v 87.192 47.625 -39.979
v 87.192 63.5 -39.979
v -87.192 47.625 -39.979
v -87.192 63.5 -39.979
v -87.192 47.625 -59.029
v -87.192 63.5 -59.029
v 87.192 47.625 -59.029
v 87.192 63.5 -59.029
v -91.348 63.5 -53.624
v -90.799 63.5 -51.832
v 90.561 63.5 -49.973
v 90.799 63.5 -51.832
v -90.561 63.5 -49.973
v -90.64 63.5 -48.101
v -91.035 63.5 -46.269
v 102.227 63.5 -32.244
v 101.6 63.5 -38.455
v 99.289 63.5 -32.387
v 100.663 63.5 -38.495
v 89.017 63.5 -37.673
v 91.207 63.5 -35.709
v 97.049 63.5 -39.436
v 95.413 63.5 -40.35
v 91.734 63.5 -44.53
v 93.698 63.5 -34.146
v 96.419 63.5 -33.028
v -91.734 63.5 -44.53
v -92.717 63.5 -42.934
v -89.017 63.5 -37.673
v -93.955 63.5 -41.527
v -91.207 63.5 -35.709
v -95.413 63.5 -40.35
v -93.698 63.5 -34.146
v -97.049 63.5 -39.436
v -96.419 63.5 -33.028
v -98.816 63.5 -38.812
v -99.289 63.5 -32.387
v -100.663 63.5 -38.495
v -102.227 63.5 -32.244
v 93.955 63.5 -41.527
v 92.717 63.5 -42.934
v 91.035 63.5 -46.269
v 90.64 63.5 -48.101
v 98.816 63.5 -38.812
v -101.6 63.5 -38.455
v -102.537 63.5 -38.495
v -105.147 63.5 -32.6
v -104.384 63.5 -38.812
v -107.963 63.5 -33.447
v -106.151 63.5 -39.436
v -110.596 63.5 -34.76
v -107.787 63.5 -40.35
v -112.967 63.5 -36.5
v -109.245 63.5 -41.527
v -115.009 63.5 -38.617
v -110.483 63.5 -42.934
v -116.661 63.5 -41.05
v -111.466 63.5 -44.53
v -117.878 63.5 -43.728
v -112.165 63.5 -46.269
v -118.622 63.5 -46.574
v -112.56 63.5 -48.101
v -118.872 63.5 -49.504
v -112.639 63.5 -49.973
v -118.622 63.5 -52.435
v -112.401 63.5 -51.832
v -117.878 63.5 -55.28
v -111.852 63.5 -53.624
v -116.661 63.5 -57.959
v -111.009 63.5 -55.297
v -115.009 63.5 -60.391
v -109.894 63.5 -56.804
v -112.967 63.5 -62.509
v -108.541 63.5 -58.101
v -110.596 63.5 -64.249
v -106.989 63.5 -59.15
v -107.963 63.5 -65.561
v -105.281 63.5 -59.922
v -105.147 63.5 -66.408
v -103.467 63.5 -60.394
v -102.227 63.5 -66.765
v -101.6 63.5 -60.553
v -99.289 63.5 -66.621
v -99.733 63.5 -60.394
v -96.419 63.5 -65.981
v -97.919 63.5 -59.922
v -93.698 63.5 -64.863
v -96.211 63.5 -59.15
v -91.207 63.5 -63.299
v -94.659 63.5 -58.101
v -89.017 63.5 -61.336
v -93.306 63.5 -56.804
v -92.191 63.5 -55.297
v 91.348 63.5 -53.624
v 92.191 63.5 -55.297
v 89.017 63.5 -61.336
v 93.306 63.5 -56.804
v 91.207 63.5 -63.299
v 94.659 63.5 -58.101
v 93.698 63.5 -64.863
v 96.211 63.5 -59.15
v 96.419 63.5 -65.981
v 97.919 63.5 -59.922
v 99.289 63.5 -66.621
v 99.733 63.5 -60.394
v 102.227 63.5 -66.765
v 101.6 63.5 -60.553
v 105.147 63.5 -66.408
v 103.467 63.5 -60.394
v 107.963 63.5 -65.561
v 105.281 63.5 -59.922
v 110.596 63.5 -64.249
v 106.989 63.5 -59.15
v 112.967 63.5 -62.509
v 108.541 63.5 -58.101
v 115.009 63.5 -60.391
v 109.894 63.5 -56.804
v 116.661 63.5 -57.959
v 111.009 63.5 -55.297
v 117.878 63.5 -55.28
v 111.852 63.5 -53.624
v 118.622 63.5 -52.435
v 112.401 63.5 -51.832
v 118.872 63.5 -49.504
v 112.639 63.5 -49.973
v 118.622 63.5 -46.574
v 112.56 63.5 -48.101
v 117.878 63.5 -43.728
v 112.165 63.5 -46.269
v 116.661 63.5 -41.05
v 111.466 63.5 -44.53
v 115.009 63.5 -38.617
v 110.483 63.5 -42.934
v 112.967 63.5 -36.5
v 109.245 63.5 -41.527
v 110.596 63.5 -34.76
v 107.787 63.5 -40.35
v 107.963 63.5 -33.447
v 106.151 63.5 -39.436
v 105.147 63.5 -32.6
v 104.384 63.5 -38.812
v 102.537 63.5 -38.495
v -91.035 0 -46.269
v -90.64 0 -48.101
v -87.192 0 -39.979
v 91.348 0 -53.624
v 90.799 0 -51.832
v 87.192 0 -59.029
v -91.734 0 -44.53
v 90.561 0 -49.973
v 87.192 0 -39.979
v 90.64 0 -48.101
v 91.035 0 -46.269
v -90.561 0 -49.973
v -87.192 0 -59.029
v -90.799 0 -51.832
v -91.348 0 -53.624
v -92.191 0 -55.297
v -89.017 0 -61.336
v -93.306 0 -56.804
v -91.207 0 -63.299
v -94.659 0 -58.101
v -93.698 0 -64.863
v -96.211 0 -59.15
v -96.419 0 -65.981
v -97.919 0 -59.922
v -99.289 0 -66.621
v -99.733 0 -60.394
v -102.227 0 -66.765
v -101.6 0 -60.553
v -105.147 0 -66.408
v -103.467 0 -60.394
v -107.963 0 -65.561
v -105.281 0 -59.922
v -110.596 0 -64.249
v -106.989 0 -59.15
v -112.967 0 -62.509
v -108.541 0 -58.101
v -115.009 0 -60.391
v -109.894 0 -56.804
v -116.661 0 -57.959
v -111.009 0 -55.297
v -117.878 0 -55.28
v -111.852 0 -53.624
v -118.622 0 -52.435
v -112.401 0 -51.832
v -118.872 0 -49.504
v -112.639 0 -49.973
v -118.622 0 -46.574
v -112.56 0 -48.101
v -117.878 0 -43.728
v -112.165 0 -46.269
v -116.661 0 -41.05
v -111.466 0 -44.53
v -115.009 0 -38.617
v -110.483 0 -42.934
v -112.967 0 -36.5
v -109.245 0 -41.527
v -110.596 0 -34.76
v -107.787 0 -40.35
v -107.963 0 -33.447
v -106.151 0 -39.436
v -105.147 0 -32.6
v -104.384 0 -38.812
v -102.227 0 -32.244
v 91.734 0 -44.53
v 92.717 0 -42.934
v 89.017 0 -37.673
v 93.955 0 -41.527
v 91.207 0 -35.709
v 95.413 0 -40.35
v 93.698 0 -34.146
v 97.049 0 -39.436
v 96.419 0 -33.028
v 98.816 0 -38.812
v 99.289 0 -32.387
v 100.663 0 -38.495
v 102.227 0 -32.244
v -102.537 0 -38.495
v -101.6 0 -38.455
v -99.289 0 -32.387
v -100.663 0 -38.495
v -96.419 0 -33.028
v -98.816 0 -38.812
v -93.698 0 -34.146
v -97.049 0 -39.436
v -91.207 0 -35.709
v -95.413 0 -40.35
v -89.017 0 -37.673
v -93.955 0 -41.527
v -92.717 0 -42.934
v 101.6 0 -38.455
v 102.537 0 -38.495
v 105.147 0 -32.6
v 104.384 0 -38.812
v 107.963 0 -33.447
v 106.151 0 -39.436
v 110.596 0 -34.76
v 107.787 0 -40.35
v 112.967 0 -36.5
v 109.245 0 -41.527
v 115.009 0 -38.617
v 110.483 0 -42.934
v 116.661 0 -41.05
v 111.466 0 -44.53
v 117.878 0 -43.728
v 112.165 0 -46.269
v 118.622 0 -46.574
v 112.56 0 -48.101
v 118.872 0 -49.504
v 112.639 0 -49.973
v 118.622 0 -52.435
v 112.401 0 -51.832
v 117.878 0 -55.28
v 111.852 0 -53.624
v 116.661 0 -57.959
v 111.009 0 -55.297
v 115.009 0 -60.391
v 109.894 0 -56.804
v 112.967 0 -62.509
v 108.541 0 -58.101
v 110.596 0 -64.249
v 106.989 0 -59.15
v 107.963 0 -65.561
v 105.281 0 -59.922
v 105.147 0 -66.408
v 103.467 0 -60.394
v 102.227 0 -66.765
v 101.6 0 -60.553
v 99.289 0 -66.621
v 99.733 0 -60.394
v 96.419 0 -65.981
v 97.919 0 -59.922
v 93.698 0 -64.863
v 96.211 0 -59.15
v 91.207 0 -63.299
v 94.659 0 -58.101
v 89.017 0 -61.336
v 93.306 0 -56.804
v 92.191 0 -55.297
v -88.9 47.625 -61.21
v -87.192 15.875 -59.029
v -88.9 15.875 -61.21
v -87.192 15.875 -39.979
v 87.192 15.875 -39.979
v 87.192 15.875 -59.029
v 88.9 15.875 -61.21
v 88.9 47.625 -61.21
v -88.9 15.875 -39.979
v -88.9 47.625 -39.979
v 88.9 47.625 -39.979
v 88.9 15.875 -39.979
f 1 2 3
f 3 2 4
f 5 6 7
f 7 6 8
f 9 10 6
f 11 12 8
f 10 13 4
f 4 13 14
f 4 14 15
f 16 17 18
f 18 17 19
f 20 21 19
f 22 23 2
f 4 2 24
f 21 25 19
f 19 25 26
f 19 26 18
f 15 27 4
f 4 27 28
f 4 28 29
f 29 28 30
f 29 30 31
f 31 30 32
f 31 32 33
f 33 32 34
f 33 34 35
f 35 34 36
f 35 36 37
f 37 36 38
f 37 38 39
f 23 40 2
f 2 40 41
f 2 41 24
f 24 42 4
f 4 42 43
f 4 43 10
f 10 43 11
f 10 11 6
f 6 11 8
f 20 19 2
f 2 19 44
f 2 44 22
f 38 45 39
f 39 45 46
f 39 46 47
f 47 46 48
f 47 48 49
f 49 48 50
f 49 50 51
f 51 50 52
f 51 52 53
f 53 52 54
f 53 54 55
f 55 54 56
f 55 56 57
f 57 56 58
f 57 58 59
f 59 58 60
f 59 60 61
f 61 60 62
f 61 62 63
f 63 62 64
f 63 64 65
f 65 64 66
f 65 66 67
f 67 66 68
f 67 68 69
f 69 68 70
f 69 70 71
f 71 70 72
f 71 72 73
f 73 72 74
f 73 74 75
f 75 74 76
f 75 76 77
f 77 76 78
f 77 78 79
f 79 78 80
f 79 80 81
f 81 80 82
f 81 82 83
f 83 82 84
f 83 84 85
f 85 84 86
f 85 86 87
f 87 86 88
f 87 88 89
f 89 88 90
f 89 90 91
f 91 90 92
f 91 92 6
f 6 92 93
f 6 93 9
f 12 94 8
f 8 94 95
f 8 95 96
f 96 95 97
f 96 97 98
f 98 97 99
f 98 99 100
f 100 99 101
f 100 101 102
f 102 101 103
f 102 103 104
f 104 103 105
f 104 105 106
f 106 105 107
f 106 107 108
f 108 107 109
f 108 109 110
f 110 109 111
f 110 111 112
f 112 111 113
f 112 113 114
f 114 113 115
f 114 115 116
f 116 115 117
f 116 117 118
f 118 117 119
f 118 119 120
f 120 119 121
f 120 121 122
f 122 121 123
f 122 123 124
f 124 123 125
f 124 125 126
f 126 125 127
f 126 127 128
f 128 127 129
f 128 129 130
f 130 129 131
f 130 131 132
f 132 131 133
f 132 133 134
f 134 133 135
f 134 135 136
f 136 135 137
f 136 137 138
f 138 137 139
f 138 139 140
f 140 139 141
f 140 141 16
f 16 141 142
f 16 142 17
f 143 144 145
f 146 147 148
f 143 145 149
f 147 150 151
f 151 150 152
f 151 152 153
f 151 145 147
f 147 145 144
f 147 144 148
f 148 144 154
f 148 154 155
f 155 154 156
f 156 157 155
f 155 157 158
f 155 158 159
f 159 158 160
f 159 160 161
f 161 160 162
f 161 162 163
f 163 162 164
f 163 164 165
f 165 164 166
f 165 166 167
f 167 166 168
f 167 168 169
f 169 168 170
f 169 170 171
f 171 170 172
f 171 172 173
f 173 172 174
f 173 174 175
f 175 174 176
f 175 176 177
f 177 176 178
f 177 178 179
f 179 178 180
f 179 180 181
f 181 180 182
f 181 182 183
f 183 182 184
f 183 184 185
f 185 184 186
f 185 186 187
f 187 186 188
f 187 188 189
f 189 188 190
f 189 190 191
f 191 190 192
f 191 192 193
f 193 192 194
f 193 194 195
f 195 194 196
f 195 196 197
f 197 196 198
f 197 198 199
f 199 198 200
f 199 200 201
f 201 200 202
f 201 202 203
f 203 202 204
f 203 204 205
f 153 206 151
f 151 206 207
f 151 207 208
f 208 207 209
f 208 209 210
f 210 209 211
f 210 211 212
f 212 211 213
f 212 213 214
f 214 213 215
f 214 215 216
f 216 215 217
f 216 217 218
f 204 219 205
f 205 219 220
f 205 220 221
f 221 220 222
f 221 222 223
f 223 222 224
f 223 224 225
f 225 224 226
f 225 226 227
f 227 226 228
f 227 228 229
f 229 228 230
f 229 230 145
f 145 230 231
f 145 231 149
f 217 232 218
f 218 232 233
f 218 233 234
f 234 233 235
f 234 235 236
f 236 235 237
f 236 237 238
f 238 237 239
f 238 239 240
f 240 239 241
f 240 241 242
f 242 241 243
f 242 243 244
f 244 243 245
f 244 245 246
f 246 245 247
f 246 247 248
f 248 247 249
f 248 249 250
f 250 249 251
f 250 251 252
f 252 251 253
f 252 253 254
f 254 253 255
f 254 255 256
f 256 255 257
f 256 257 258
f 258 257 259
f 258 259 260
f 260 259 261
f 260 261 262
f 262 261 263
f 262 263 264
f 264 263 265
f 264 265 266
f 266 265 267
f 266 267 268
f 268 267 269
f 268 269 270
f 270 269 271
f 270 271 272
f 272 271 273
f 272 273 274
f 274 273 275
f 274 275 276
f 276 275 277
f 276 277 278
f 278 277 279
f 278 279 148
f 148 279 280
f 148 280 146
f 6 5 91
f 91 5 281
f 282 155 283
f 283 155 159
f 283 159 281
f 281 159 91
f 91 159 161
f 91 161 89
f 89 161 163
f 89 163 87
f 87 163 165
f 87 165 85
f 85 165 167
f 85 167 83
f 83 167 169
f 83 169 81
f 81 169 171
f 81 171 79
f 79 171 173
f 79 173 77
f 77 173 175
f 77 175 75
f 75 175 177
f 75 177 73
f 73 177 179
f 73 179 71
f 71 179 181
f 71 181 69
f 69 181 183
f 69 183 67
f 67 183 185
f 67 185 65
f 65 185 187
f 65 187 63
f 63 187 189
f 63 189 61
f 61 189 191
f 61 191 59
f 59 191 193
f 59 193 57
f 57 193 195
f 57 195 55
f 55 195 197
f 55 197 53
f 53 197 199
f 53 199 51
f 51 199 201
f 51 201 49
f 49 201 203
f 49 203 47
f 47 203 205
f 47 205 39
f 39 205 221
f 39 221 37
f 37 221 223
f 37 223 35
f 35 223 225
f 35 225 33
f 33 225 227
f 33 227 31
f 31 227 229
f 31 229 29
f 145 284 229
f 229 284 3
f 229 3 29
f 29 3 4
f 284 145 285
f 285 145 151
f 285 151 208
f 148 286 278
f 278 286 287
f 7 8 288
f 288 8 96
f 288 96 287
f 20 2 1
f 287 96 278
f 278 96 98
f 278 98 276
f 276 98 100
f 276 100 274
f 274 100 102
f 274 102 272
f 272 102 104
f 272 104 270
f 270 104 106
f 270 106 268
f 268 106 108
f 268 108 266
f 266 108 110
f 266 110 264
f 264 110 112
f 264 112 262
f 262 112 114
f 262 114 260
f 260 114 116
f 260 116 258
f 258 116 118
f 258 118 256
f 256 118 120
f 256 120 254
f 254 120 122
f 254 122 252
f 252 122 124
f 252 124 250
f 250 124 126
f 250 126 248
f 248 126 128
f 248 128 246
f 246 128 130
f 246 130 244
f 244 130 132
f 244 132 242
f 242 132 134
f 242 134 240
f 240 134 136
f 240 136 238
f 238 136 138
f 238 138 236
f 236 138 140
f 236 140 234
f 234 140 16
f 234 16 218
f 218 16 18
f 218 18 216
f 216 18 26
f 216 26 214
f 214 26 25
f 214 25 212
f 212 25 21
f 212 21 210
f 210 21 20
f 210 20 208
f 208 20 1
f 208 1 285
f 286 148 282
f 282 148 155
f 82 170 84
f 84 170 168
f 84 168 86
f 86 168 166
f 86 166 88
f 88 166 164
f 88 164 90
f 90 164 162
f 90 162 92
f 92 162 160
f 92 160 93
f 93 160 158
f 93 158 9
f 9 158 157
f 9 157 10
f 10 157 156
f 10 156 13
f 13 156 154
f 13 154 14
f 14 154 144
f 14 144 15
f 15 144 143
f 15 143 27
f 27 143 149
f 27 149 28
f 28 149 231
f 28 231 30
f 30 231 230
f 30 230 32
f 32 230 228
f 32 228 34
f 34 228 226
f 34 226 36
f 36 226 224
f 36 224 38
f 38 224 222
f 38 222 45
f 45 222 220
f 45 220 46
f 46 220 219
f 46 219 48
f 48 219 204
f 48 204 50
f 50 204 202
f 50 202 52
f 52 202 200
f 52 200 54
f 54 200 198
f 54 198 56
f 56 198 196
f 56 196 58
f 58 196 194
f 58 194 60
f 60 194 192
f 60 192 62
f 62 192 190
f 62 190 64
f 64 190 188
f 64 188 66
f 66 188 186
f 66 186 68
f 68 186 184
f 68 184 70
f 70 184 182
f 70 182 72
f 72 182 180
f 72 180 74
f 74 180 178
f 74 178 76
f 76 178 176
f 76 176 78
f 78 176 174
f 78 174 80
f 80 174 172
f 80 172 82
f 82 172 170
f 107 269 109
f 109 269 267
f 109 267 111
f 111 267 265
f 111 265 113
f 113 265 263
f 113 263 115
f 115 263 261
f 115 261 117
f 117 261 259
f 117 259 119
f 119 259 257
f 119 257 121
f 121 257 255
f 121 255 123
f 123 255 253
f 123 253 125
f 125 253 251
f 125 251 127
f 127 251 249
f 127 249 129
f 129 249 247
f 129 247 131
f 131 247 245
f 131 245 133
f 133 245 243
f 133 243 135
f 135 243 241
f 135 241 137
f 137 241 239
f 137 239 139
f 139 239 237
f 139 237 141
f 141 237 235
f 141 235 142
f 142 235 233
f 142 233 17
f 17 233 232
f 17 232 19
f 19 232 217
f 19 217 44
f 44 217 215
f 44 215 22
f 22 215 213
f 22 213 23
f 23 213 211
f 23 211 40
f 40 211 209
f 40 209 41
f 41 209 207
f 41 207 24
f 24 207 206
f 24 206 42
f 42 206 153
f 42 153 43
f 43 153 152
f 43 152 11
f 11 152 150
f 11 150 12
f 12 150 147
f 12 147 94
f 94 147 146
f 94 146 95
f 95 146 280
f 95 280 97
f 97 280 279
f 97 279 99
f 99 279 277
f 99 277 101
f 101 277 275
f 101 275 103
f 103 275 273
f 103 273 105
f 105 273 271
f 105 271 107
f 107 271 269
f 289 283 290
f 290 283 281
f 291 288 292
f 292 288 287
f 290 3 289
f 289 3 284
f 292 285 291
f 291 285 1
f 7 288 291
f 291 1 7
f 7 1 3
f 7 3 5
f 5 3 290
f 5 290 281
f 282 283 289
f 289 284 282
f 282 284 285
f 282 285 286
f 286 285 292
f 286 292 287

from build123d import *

# Parameters (mm, degrees)
SKETCH1_R           = 11.049
BOSS_EXTRUDE1_DEPTH = 63.5
SKETCH2_W           = 177.8
SKETCH2_H           = 31.75
CUT_EXTRUDE1_DEPTH  = 138.407720282


with BuildPart() as part:
    # Sketch1 → Boss-Extrude1 (new body)
    with BuildSketch(Plane(origin=(0, 0, 0), x_dir=(1, 0, 0), z_dir=(0, 1, 0))):
        with BuildLine():
            Line((-87.191795428, 59.02921057), (87.191795428, 59.02921057))
            ThreePointArc((87.191795428, 59.02921057), (118.872, 49.50421057), (87.191795428, 39.97921057))
            Line((87.191795428, 39.97921057), (-87.191795428, 39.97921057))
            ThreePointArc((-87.191795428, 39.97921057), (-118.872, 49.50421057), (-87.191795428, 59.02921057))
        make_face()
        with Locations(Location((101.6, 49.50421057, 0), (0, 0, 270))):
            Circle(SKETCH1_R, mode=Mode.SUBTRACT)
        with Locations(Location((-101.6, 49.50421057, 0), (0, 0, 270))):
            Circle(SKETCH1_R, mode=Mode.SUBTRACT)
    extrude(amount=BOSS_EXTRUDE1_DEPTH)

    # Sketch2 → Cut-Extrude1 (cut, through all)
    with BuildSketch(Plane.XY.offset(-39.97921057)):
        with Locations((0, 31.75)):
            Rectangle(SKETCH2_W, SKETCH2_H)
    extrude(amount=-CUT_EXTRUDE1_DEPTH, mode=Mode.SUBTRACT)


solid = part.part
